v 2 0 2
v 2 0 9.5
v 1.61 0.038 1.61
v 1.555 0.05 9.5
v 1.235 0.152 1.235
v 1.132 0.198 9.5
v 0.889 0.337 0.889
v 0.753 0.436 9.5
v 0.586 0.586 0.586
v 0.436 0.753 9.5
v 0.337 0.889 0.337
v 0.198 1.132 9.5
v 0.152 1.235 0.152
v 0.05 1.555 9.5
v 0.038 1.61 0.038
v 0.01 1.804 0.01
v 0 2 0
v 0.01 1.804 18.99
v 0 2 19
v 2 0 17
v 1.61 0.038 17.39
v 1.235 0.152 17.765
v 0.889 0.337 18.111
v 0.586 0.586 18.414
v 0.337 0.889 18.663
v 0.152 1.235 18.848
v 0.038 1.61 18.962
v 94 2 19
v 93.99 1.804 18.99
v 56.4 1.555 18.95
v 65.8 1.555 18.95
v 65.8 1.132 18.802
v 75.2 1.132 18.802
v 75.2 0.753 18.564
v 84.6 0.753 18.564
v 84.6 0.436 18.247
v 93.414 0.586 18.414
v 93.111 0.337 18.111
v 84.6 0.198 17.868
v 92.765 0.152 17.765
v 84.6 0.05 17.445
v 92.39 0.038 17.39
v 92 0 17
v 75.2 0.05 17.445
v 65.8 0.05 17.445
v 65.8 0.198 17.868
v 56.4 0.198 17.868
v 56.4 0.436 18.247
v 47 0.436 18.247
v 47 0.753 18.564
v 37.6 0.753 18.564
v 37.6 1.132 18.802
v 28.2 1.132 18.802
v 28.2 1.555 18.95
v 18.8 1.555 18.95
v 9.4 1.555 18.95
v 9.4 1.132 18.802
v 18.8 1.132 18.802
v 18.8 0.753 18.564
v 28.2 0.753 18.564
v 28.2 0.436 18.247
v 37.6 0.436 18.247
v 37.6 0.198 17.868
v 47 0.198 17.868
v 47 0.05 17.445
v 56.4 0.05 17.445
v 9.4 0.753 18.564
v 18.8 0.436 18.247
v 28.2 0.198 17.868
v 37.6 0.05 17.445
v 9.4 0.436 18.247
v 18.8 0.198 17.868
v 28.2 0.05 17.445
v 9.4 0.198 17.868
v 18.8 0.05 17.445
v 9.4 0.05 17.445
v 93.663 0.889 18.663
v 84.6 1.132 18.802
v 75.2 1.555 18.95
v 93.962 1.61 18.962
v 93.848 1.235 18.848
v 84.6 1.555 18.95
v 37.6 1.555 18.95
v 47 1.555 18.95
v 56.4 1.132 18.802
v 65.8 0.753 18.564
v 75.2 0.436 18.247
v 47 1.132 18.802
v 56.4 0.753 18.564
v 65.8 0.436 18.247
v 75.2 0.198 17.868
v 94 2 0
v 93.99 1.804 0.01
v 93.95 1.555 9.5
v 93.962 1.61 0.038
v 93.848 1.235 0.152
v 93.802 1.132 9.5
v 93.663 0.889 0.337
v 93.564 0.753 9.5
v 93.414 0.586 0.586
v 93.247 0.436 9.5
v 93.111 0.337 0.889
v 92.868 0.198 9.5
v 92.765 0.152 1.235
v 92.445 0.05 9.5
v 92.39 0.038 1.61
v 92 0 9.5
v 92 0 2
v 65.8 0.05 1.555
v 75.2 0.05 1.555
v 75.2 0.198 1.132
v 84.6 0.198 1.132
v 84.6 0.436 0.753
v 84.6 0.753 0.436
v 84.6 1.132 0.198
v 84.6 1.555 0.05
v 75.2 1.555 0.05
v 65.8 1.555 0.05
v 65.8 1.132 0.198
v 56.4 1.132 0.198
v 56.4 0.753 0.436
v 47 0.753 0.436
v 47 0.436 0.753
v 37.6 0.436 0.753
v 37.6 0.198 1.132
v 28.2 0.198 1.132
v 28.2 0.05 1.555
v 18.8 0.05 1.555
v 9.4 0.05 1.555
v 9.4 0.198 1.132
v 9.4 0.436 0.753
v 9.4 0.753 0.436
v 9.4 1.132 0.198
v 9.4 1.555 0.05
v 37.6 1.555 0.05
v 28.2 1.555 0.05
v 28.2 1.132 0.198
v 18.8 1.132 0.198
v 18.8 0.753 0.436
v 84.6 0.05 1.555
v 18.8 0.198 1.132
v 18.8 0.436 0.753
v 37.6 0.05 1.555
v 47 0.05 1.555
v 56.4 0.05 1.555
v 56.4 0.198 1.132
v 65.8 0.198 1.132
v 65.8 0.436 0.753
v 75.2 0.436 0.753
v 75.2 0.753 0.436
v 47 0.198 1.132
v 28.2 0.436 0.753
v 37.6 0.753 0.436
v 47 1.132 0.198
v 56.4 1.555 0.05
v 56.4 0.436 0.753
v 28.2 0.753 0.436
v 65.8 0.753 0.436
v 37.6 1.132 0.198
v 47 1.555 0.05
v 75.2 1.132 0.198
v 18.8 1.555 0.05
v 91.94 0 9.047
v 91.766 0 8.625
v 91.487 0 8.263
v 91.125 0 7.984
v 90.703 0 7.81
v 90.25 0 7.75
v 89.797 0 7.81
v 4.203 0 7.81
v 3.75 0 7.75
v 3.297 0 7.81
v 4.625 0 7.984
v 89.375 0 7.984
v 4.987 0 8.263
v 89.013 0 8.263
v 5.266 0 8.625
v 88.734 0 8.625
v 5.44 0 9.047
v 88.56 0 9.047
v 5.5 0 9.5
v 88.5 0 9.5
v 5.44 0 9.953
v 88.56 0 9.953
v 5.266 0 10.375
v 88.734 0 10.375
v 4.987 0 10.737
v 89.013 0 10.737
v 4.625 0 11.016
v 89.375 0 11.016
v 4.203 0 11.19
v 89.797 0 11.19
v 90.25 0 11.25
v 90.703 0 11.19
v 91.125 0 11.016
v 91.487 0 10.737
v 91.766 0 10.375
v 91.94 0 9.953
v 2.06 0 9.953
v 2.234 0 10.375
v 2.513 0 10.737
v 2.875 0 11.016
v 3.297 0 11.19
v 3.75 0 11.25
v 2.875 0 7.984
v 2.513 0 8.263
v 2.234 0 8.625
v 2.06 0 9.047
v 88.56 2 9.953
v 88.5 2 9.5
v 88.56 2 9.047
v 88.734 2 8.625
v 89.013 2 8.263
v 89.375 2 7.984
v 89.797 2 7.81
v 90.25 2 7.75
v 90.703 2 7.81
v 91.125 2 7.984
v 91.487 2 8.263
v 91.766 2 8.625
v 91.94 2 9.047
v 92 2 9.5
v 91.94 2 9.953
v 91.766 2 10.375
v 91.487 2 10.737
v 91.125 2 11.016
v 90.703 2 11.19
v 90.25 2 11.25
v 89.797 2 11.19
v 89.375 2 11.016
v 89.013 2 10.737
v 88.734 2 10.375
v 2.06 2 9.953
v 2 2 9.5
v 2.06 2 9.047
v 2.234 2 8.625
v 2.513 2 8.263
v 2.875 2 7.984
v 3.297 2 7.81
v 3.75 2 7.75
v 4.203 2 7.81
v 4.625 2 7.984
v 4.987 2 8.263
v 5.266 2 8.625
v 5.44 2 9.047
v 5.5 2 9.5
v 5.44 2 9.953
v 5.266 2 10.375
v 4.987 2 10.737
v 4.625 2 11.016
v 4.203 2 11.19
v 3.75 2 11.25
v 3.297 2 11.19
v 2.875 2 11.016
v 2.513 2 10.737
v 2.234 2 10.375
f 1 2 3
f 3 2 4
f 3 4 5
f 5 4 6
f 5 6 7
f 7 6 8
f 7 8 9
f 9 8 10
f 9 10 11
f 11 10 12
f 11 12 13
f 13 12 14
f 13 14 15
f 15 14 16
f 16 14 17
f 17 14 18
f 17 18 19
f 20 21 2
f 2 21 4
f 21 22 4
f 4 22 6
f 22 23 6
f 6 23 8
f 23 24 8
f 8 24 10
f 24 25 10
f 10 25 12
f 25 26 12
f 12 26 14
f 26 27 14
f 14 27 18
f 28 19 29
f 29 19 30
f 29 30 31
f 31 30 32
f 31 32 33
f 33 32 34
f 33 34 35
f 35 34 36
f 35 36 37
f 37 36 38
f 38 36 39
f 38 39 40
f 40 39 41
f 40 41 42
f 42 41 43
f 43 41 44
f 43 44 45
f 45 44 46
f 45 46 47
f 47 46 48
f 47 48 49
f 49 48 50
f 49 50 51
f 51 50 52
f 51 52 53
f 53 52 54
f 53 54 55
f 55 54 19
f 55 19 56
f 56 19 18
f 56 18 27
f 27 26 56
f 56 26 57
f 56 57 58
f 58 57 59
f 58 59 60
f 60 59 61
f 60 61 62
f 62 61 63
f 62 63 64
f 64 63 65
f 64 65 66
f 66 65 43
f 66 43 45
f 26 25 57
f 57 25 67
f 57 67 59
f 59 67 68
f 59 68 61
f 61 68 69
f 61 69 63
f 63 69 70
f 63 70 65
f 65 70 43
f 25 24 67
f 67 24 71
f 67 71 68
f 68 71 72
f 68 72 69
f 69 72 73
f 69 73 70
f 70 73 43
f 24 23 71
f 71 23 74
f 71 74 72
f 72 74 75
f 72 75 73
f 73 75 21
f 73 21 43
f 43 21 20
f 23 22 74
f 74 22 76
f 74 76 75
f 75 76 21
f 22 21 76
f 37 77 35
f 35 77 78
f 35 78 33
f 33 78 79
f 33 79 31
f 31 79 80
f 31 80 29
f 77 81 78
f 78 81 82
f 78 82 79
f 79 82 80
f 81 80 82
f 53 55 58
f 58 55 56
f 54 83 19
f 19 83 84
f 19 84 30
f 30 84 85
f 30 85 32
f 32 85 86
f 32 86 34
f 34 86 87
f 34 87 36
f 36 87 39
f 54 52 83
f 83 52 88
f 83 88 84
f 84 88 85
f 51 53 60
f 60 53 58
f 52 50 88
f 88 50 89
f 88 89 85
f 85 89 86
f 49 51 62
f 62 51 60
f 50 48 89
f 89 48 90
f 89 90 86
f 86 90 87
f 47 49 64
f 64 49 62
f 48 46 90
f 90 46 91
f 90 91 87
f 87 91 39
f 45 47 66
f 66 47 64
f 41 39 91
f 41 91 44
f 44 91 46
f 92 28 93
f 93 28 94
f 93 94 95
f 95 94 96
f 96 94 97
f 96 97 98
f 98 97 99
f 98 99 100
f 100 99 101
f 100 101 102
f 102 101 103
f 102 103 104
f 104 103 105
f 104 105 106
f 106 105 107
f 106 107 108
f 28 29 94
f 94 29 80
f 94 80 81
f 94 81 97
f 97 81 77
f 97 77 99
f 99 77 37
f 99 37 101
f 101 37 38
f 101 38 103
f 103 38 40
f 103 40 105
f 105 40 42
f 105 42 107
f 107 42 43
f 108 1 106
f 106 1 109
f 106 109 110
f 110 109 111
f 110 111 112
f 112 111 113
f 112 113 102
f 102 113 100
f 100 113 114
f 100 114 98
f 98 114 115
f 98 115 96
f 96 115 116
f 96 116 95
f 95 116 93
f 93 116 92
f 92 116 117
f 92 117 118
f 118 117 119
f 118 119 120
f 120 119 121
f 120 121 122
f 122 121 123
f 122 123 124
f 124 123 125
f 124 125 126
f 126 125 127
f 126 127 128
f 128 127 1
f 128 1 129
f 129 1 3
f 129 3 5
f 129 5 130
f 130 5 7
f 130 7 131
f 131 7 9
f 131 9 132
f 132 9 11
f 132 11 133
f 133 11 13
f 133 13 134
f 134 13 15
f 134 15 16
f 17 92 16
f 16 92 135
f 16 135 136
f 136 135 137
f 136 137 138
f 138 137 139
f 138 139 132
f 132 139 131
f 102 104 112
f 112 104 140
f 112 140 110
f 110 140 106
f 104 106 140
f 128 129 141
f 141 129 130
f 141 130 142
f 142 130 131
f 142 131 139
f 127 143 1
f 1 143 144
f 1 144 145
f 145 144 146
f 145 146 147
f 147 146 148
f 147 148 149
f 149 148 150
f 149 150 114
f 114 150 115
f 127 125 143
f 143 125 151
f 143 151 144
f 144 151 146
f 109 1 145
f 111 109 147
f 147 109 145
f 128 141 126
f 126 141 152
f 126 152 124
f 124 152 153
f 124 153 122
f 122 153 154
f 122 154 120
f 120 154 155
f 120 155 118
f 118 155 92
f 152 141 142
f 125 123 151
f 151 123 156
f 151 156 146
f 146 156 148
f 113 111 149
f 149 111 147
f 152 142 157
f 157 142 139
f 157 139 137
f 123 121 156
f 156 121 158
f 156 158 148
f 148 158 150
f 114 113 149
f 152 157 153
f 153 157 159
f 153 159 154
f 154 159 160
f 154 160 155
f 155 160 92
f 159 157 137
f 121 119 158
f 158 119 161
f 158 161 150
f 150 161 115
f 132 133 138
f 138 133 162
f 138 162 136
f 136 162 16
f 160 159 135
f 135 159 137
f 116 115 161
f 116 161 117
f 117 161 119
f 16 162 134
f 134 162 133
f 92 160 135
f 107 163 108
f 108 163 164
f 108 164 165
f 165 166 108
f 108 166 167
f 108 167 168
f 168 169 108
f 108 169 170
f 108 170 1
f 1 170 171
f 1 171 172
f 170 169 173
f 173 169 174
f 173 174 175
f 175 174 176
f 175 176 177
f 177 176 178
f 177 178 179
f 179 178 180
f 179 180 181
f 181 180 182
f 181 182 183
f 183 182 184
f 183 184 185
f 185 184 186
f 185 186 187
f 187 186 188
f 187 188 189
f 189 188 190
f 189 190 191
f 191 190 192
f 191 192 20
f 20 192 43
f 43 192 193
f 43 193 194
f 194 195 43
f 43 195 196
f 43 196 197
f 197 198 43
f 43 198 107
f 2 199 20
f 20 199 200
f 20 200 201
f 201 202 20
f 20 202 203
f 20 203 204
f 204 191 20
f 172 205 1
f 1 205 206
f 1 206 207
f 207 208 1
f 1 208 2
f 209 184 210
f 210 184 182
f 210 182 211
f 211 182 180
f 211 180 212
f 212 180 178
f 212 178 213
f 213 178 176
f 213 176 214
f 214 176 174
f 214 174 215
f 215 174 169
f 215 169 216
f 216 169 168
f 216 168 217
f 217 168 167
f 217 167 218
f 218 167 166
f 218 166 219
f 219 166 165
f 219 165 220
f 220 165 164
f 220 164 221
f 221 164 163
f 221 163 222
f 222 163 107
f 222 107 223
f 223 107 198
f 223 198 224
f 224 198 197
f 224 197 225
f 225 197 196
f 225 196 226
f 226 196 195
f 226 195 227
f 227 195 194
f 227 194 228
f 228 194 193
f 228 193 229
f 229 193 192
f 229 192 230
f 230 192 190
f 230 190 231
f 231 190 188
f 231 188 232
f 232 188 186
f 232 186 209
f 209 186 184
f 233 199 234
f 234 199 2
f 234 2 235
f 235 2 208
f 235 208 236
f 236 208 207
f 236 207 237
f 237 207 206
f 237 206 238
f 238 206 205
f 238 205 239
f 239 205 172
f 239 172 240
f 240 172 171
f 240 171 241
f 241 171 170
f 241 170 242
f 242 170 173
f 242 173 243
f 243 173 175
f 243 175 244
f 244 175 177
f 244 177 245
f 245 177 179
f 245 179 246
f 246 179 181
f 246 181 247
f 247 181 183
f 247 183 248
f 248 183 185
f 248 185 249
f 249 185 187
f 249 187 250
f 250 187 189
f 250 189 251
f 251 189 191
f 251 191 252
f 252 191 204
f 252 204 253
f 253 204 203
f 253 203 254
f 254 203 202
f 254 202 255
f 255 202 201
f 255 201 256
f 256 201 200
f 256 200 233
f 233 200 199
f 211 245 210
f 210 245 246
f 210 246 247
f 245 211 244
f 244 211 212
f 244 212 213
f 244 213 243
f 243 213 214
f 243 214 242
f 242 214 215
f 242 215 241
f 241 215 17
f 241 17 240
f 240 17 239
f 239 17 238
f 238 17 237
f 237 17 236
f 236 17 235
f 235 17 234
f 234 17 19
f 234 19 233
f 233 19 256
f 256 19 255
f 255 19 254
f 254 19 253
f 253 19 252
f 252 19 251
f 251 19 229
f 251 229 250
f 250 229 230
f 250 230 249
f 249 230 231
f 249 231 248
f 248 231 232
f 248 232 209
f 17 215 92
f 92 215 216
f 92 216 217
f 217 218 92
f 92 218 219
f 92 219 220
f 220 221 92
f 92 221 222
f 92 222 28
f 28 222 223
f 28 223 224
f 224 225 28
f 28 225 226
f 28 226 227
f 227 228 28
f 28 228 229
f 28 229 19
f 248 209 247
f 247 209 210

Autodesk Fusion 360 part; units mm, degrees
sketch "Skizze1" plane through (0, 0, 0) normal (0, 1, 0) x (1, 0, 0)
  line L0 (0, 0) -> (94, 0)
  line L1 (0, 0) -> (0, -19)
  line L2 (0, -19) -> (94, -19)
  line L3 (94, -19) -> (94, 0)
  dimension "d1" = 94
  dimension "d2" = 19
extrude "Extrusion1" add sketch "Skizze1" along normal blind 2
sketch "Skizze2" plane through (0, 0, 0) normal (0, -1, 0) x (1, 0, 0)
  line L0 (0, 19) -> (0, 0)
  line L1 (0, 0) -> (94, 0)
  line L2 (94, 0) -> (94, 19)
  line L3 (94, 19) -> (0, 19)
  circle A0 centre (3.75, 9.5) radius 1.75
  circle A1 centre (90.25, 9.5) radius 1.75
  dimension "d8" = 3.5
  dimension "d9" = 3.5
extrude "Extrusion2" cut sketch "Skizze2" against normal blind 2 contours A0 | A1
fillet "Abrundung1" radius 2 4 edges at (47, 0, 19) (94, 0, 9.5) (47, 0, 0) (0, 0, 9.5)
